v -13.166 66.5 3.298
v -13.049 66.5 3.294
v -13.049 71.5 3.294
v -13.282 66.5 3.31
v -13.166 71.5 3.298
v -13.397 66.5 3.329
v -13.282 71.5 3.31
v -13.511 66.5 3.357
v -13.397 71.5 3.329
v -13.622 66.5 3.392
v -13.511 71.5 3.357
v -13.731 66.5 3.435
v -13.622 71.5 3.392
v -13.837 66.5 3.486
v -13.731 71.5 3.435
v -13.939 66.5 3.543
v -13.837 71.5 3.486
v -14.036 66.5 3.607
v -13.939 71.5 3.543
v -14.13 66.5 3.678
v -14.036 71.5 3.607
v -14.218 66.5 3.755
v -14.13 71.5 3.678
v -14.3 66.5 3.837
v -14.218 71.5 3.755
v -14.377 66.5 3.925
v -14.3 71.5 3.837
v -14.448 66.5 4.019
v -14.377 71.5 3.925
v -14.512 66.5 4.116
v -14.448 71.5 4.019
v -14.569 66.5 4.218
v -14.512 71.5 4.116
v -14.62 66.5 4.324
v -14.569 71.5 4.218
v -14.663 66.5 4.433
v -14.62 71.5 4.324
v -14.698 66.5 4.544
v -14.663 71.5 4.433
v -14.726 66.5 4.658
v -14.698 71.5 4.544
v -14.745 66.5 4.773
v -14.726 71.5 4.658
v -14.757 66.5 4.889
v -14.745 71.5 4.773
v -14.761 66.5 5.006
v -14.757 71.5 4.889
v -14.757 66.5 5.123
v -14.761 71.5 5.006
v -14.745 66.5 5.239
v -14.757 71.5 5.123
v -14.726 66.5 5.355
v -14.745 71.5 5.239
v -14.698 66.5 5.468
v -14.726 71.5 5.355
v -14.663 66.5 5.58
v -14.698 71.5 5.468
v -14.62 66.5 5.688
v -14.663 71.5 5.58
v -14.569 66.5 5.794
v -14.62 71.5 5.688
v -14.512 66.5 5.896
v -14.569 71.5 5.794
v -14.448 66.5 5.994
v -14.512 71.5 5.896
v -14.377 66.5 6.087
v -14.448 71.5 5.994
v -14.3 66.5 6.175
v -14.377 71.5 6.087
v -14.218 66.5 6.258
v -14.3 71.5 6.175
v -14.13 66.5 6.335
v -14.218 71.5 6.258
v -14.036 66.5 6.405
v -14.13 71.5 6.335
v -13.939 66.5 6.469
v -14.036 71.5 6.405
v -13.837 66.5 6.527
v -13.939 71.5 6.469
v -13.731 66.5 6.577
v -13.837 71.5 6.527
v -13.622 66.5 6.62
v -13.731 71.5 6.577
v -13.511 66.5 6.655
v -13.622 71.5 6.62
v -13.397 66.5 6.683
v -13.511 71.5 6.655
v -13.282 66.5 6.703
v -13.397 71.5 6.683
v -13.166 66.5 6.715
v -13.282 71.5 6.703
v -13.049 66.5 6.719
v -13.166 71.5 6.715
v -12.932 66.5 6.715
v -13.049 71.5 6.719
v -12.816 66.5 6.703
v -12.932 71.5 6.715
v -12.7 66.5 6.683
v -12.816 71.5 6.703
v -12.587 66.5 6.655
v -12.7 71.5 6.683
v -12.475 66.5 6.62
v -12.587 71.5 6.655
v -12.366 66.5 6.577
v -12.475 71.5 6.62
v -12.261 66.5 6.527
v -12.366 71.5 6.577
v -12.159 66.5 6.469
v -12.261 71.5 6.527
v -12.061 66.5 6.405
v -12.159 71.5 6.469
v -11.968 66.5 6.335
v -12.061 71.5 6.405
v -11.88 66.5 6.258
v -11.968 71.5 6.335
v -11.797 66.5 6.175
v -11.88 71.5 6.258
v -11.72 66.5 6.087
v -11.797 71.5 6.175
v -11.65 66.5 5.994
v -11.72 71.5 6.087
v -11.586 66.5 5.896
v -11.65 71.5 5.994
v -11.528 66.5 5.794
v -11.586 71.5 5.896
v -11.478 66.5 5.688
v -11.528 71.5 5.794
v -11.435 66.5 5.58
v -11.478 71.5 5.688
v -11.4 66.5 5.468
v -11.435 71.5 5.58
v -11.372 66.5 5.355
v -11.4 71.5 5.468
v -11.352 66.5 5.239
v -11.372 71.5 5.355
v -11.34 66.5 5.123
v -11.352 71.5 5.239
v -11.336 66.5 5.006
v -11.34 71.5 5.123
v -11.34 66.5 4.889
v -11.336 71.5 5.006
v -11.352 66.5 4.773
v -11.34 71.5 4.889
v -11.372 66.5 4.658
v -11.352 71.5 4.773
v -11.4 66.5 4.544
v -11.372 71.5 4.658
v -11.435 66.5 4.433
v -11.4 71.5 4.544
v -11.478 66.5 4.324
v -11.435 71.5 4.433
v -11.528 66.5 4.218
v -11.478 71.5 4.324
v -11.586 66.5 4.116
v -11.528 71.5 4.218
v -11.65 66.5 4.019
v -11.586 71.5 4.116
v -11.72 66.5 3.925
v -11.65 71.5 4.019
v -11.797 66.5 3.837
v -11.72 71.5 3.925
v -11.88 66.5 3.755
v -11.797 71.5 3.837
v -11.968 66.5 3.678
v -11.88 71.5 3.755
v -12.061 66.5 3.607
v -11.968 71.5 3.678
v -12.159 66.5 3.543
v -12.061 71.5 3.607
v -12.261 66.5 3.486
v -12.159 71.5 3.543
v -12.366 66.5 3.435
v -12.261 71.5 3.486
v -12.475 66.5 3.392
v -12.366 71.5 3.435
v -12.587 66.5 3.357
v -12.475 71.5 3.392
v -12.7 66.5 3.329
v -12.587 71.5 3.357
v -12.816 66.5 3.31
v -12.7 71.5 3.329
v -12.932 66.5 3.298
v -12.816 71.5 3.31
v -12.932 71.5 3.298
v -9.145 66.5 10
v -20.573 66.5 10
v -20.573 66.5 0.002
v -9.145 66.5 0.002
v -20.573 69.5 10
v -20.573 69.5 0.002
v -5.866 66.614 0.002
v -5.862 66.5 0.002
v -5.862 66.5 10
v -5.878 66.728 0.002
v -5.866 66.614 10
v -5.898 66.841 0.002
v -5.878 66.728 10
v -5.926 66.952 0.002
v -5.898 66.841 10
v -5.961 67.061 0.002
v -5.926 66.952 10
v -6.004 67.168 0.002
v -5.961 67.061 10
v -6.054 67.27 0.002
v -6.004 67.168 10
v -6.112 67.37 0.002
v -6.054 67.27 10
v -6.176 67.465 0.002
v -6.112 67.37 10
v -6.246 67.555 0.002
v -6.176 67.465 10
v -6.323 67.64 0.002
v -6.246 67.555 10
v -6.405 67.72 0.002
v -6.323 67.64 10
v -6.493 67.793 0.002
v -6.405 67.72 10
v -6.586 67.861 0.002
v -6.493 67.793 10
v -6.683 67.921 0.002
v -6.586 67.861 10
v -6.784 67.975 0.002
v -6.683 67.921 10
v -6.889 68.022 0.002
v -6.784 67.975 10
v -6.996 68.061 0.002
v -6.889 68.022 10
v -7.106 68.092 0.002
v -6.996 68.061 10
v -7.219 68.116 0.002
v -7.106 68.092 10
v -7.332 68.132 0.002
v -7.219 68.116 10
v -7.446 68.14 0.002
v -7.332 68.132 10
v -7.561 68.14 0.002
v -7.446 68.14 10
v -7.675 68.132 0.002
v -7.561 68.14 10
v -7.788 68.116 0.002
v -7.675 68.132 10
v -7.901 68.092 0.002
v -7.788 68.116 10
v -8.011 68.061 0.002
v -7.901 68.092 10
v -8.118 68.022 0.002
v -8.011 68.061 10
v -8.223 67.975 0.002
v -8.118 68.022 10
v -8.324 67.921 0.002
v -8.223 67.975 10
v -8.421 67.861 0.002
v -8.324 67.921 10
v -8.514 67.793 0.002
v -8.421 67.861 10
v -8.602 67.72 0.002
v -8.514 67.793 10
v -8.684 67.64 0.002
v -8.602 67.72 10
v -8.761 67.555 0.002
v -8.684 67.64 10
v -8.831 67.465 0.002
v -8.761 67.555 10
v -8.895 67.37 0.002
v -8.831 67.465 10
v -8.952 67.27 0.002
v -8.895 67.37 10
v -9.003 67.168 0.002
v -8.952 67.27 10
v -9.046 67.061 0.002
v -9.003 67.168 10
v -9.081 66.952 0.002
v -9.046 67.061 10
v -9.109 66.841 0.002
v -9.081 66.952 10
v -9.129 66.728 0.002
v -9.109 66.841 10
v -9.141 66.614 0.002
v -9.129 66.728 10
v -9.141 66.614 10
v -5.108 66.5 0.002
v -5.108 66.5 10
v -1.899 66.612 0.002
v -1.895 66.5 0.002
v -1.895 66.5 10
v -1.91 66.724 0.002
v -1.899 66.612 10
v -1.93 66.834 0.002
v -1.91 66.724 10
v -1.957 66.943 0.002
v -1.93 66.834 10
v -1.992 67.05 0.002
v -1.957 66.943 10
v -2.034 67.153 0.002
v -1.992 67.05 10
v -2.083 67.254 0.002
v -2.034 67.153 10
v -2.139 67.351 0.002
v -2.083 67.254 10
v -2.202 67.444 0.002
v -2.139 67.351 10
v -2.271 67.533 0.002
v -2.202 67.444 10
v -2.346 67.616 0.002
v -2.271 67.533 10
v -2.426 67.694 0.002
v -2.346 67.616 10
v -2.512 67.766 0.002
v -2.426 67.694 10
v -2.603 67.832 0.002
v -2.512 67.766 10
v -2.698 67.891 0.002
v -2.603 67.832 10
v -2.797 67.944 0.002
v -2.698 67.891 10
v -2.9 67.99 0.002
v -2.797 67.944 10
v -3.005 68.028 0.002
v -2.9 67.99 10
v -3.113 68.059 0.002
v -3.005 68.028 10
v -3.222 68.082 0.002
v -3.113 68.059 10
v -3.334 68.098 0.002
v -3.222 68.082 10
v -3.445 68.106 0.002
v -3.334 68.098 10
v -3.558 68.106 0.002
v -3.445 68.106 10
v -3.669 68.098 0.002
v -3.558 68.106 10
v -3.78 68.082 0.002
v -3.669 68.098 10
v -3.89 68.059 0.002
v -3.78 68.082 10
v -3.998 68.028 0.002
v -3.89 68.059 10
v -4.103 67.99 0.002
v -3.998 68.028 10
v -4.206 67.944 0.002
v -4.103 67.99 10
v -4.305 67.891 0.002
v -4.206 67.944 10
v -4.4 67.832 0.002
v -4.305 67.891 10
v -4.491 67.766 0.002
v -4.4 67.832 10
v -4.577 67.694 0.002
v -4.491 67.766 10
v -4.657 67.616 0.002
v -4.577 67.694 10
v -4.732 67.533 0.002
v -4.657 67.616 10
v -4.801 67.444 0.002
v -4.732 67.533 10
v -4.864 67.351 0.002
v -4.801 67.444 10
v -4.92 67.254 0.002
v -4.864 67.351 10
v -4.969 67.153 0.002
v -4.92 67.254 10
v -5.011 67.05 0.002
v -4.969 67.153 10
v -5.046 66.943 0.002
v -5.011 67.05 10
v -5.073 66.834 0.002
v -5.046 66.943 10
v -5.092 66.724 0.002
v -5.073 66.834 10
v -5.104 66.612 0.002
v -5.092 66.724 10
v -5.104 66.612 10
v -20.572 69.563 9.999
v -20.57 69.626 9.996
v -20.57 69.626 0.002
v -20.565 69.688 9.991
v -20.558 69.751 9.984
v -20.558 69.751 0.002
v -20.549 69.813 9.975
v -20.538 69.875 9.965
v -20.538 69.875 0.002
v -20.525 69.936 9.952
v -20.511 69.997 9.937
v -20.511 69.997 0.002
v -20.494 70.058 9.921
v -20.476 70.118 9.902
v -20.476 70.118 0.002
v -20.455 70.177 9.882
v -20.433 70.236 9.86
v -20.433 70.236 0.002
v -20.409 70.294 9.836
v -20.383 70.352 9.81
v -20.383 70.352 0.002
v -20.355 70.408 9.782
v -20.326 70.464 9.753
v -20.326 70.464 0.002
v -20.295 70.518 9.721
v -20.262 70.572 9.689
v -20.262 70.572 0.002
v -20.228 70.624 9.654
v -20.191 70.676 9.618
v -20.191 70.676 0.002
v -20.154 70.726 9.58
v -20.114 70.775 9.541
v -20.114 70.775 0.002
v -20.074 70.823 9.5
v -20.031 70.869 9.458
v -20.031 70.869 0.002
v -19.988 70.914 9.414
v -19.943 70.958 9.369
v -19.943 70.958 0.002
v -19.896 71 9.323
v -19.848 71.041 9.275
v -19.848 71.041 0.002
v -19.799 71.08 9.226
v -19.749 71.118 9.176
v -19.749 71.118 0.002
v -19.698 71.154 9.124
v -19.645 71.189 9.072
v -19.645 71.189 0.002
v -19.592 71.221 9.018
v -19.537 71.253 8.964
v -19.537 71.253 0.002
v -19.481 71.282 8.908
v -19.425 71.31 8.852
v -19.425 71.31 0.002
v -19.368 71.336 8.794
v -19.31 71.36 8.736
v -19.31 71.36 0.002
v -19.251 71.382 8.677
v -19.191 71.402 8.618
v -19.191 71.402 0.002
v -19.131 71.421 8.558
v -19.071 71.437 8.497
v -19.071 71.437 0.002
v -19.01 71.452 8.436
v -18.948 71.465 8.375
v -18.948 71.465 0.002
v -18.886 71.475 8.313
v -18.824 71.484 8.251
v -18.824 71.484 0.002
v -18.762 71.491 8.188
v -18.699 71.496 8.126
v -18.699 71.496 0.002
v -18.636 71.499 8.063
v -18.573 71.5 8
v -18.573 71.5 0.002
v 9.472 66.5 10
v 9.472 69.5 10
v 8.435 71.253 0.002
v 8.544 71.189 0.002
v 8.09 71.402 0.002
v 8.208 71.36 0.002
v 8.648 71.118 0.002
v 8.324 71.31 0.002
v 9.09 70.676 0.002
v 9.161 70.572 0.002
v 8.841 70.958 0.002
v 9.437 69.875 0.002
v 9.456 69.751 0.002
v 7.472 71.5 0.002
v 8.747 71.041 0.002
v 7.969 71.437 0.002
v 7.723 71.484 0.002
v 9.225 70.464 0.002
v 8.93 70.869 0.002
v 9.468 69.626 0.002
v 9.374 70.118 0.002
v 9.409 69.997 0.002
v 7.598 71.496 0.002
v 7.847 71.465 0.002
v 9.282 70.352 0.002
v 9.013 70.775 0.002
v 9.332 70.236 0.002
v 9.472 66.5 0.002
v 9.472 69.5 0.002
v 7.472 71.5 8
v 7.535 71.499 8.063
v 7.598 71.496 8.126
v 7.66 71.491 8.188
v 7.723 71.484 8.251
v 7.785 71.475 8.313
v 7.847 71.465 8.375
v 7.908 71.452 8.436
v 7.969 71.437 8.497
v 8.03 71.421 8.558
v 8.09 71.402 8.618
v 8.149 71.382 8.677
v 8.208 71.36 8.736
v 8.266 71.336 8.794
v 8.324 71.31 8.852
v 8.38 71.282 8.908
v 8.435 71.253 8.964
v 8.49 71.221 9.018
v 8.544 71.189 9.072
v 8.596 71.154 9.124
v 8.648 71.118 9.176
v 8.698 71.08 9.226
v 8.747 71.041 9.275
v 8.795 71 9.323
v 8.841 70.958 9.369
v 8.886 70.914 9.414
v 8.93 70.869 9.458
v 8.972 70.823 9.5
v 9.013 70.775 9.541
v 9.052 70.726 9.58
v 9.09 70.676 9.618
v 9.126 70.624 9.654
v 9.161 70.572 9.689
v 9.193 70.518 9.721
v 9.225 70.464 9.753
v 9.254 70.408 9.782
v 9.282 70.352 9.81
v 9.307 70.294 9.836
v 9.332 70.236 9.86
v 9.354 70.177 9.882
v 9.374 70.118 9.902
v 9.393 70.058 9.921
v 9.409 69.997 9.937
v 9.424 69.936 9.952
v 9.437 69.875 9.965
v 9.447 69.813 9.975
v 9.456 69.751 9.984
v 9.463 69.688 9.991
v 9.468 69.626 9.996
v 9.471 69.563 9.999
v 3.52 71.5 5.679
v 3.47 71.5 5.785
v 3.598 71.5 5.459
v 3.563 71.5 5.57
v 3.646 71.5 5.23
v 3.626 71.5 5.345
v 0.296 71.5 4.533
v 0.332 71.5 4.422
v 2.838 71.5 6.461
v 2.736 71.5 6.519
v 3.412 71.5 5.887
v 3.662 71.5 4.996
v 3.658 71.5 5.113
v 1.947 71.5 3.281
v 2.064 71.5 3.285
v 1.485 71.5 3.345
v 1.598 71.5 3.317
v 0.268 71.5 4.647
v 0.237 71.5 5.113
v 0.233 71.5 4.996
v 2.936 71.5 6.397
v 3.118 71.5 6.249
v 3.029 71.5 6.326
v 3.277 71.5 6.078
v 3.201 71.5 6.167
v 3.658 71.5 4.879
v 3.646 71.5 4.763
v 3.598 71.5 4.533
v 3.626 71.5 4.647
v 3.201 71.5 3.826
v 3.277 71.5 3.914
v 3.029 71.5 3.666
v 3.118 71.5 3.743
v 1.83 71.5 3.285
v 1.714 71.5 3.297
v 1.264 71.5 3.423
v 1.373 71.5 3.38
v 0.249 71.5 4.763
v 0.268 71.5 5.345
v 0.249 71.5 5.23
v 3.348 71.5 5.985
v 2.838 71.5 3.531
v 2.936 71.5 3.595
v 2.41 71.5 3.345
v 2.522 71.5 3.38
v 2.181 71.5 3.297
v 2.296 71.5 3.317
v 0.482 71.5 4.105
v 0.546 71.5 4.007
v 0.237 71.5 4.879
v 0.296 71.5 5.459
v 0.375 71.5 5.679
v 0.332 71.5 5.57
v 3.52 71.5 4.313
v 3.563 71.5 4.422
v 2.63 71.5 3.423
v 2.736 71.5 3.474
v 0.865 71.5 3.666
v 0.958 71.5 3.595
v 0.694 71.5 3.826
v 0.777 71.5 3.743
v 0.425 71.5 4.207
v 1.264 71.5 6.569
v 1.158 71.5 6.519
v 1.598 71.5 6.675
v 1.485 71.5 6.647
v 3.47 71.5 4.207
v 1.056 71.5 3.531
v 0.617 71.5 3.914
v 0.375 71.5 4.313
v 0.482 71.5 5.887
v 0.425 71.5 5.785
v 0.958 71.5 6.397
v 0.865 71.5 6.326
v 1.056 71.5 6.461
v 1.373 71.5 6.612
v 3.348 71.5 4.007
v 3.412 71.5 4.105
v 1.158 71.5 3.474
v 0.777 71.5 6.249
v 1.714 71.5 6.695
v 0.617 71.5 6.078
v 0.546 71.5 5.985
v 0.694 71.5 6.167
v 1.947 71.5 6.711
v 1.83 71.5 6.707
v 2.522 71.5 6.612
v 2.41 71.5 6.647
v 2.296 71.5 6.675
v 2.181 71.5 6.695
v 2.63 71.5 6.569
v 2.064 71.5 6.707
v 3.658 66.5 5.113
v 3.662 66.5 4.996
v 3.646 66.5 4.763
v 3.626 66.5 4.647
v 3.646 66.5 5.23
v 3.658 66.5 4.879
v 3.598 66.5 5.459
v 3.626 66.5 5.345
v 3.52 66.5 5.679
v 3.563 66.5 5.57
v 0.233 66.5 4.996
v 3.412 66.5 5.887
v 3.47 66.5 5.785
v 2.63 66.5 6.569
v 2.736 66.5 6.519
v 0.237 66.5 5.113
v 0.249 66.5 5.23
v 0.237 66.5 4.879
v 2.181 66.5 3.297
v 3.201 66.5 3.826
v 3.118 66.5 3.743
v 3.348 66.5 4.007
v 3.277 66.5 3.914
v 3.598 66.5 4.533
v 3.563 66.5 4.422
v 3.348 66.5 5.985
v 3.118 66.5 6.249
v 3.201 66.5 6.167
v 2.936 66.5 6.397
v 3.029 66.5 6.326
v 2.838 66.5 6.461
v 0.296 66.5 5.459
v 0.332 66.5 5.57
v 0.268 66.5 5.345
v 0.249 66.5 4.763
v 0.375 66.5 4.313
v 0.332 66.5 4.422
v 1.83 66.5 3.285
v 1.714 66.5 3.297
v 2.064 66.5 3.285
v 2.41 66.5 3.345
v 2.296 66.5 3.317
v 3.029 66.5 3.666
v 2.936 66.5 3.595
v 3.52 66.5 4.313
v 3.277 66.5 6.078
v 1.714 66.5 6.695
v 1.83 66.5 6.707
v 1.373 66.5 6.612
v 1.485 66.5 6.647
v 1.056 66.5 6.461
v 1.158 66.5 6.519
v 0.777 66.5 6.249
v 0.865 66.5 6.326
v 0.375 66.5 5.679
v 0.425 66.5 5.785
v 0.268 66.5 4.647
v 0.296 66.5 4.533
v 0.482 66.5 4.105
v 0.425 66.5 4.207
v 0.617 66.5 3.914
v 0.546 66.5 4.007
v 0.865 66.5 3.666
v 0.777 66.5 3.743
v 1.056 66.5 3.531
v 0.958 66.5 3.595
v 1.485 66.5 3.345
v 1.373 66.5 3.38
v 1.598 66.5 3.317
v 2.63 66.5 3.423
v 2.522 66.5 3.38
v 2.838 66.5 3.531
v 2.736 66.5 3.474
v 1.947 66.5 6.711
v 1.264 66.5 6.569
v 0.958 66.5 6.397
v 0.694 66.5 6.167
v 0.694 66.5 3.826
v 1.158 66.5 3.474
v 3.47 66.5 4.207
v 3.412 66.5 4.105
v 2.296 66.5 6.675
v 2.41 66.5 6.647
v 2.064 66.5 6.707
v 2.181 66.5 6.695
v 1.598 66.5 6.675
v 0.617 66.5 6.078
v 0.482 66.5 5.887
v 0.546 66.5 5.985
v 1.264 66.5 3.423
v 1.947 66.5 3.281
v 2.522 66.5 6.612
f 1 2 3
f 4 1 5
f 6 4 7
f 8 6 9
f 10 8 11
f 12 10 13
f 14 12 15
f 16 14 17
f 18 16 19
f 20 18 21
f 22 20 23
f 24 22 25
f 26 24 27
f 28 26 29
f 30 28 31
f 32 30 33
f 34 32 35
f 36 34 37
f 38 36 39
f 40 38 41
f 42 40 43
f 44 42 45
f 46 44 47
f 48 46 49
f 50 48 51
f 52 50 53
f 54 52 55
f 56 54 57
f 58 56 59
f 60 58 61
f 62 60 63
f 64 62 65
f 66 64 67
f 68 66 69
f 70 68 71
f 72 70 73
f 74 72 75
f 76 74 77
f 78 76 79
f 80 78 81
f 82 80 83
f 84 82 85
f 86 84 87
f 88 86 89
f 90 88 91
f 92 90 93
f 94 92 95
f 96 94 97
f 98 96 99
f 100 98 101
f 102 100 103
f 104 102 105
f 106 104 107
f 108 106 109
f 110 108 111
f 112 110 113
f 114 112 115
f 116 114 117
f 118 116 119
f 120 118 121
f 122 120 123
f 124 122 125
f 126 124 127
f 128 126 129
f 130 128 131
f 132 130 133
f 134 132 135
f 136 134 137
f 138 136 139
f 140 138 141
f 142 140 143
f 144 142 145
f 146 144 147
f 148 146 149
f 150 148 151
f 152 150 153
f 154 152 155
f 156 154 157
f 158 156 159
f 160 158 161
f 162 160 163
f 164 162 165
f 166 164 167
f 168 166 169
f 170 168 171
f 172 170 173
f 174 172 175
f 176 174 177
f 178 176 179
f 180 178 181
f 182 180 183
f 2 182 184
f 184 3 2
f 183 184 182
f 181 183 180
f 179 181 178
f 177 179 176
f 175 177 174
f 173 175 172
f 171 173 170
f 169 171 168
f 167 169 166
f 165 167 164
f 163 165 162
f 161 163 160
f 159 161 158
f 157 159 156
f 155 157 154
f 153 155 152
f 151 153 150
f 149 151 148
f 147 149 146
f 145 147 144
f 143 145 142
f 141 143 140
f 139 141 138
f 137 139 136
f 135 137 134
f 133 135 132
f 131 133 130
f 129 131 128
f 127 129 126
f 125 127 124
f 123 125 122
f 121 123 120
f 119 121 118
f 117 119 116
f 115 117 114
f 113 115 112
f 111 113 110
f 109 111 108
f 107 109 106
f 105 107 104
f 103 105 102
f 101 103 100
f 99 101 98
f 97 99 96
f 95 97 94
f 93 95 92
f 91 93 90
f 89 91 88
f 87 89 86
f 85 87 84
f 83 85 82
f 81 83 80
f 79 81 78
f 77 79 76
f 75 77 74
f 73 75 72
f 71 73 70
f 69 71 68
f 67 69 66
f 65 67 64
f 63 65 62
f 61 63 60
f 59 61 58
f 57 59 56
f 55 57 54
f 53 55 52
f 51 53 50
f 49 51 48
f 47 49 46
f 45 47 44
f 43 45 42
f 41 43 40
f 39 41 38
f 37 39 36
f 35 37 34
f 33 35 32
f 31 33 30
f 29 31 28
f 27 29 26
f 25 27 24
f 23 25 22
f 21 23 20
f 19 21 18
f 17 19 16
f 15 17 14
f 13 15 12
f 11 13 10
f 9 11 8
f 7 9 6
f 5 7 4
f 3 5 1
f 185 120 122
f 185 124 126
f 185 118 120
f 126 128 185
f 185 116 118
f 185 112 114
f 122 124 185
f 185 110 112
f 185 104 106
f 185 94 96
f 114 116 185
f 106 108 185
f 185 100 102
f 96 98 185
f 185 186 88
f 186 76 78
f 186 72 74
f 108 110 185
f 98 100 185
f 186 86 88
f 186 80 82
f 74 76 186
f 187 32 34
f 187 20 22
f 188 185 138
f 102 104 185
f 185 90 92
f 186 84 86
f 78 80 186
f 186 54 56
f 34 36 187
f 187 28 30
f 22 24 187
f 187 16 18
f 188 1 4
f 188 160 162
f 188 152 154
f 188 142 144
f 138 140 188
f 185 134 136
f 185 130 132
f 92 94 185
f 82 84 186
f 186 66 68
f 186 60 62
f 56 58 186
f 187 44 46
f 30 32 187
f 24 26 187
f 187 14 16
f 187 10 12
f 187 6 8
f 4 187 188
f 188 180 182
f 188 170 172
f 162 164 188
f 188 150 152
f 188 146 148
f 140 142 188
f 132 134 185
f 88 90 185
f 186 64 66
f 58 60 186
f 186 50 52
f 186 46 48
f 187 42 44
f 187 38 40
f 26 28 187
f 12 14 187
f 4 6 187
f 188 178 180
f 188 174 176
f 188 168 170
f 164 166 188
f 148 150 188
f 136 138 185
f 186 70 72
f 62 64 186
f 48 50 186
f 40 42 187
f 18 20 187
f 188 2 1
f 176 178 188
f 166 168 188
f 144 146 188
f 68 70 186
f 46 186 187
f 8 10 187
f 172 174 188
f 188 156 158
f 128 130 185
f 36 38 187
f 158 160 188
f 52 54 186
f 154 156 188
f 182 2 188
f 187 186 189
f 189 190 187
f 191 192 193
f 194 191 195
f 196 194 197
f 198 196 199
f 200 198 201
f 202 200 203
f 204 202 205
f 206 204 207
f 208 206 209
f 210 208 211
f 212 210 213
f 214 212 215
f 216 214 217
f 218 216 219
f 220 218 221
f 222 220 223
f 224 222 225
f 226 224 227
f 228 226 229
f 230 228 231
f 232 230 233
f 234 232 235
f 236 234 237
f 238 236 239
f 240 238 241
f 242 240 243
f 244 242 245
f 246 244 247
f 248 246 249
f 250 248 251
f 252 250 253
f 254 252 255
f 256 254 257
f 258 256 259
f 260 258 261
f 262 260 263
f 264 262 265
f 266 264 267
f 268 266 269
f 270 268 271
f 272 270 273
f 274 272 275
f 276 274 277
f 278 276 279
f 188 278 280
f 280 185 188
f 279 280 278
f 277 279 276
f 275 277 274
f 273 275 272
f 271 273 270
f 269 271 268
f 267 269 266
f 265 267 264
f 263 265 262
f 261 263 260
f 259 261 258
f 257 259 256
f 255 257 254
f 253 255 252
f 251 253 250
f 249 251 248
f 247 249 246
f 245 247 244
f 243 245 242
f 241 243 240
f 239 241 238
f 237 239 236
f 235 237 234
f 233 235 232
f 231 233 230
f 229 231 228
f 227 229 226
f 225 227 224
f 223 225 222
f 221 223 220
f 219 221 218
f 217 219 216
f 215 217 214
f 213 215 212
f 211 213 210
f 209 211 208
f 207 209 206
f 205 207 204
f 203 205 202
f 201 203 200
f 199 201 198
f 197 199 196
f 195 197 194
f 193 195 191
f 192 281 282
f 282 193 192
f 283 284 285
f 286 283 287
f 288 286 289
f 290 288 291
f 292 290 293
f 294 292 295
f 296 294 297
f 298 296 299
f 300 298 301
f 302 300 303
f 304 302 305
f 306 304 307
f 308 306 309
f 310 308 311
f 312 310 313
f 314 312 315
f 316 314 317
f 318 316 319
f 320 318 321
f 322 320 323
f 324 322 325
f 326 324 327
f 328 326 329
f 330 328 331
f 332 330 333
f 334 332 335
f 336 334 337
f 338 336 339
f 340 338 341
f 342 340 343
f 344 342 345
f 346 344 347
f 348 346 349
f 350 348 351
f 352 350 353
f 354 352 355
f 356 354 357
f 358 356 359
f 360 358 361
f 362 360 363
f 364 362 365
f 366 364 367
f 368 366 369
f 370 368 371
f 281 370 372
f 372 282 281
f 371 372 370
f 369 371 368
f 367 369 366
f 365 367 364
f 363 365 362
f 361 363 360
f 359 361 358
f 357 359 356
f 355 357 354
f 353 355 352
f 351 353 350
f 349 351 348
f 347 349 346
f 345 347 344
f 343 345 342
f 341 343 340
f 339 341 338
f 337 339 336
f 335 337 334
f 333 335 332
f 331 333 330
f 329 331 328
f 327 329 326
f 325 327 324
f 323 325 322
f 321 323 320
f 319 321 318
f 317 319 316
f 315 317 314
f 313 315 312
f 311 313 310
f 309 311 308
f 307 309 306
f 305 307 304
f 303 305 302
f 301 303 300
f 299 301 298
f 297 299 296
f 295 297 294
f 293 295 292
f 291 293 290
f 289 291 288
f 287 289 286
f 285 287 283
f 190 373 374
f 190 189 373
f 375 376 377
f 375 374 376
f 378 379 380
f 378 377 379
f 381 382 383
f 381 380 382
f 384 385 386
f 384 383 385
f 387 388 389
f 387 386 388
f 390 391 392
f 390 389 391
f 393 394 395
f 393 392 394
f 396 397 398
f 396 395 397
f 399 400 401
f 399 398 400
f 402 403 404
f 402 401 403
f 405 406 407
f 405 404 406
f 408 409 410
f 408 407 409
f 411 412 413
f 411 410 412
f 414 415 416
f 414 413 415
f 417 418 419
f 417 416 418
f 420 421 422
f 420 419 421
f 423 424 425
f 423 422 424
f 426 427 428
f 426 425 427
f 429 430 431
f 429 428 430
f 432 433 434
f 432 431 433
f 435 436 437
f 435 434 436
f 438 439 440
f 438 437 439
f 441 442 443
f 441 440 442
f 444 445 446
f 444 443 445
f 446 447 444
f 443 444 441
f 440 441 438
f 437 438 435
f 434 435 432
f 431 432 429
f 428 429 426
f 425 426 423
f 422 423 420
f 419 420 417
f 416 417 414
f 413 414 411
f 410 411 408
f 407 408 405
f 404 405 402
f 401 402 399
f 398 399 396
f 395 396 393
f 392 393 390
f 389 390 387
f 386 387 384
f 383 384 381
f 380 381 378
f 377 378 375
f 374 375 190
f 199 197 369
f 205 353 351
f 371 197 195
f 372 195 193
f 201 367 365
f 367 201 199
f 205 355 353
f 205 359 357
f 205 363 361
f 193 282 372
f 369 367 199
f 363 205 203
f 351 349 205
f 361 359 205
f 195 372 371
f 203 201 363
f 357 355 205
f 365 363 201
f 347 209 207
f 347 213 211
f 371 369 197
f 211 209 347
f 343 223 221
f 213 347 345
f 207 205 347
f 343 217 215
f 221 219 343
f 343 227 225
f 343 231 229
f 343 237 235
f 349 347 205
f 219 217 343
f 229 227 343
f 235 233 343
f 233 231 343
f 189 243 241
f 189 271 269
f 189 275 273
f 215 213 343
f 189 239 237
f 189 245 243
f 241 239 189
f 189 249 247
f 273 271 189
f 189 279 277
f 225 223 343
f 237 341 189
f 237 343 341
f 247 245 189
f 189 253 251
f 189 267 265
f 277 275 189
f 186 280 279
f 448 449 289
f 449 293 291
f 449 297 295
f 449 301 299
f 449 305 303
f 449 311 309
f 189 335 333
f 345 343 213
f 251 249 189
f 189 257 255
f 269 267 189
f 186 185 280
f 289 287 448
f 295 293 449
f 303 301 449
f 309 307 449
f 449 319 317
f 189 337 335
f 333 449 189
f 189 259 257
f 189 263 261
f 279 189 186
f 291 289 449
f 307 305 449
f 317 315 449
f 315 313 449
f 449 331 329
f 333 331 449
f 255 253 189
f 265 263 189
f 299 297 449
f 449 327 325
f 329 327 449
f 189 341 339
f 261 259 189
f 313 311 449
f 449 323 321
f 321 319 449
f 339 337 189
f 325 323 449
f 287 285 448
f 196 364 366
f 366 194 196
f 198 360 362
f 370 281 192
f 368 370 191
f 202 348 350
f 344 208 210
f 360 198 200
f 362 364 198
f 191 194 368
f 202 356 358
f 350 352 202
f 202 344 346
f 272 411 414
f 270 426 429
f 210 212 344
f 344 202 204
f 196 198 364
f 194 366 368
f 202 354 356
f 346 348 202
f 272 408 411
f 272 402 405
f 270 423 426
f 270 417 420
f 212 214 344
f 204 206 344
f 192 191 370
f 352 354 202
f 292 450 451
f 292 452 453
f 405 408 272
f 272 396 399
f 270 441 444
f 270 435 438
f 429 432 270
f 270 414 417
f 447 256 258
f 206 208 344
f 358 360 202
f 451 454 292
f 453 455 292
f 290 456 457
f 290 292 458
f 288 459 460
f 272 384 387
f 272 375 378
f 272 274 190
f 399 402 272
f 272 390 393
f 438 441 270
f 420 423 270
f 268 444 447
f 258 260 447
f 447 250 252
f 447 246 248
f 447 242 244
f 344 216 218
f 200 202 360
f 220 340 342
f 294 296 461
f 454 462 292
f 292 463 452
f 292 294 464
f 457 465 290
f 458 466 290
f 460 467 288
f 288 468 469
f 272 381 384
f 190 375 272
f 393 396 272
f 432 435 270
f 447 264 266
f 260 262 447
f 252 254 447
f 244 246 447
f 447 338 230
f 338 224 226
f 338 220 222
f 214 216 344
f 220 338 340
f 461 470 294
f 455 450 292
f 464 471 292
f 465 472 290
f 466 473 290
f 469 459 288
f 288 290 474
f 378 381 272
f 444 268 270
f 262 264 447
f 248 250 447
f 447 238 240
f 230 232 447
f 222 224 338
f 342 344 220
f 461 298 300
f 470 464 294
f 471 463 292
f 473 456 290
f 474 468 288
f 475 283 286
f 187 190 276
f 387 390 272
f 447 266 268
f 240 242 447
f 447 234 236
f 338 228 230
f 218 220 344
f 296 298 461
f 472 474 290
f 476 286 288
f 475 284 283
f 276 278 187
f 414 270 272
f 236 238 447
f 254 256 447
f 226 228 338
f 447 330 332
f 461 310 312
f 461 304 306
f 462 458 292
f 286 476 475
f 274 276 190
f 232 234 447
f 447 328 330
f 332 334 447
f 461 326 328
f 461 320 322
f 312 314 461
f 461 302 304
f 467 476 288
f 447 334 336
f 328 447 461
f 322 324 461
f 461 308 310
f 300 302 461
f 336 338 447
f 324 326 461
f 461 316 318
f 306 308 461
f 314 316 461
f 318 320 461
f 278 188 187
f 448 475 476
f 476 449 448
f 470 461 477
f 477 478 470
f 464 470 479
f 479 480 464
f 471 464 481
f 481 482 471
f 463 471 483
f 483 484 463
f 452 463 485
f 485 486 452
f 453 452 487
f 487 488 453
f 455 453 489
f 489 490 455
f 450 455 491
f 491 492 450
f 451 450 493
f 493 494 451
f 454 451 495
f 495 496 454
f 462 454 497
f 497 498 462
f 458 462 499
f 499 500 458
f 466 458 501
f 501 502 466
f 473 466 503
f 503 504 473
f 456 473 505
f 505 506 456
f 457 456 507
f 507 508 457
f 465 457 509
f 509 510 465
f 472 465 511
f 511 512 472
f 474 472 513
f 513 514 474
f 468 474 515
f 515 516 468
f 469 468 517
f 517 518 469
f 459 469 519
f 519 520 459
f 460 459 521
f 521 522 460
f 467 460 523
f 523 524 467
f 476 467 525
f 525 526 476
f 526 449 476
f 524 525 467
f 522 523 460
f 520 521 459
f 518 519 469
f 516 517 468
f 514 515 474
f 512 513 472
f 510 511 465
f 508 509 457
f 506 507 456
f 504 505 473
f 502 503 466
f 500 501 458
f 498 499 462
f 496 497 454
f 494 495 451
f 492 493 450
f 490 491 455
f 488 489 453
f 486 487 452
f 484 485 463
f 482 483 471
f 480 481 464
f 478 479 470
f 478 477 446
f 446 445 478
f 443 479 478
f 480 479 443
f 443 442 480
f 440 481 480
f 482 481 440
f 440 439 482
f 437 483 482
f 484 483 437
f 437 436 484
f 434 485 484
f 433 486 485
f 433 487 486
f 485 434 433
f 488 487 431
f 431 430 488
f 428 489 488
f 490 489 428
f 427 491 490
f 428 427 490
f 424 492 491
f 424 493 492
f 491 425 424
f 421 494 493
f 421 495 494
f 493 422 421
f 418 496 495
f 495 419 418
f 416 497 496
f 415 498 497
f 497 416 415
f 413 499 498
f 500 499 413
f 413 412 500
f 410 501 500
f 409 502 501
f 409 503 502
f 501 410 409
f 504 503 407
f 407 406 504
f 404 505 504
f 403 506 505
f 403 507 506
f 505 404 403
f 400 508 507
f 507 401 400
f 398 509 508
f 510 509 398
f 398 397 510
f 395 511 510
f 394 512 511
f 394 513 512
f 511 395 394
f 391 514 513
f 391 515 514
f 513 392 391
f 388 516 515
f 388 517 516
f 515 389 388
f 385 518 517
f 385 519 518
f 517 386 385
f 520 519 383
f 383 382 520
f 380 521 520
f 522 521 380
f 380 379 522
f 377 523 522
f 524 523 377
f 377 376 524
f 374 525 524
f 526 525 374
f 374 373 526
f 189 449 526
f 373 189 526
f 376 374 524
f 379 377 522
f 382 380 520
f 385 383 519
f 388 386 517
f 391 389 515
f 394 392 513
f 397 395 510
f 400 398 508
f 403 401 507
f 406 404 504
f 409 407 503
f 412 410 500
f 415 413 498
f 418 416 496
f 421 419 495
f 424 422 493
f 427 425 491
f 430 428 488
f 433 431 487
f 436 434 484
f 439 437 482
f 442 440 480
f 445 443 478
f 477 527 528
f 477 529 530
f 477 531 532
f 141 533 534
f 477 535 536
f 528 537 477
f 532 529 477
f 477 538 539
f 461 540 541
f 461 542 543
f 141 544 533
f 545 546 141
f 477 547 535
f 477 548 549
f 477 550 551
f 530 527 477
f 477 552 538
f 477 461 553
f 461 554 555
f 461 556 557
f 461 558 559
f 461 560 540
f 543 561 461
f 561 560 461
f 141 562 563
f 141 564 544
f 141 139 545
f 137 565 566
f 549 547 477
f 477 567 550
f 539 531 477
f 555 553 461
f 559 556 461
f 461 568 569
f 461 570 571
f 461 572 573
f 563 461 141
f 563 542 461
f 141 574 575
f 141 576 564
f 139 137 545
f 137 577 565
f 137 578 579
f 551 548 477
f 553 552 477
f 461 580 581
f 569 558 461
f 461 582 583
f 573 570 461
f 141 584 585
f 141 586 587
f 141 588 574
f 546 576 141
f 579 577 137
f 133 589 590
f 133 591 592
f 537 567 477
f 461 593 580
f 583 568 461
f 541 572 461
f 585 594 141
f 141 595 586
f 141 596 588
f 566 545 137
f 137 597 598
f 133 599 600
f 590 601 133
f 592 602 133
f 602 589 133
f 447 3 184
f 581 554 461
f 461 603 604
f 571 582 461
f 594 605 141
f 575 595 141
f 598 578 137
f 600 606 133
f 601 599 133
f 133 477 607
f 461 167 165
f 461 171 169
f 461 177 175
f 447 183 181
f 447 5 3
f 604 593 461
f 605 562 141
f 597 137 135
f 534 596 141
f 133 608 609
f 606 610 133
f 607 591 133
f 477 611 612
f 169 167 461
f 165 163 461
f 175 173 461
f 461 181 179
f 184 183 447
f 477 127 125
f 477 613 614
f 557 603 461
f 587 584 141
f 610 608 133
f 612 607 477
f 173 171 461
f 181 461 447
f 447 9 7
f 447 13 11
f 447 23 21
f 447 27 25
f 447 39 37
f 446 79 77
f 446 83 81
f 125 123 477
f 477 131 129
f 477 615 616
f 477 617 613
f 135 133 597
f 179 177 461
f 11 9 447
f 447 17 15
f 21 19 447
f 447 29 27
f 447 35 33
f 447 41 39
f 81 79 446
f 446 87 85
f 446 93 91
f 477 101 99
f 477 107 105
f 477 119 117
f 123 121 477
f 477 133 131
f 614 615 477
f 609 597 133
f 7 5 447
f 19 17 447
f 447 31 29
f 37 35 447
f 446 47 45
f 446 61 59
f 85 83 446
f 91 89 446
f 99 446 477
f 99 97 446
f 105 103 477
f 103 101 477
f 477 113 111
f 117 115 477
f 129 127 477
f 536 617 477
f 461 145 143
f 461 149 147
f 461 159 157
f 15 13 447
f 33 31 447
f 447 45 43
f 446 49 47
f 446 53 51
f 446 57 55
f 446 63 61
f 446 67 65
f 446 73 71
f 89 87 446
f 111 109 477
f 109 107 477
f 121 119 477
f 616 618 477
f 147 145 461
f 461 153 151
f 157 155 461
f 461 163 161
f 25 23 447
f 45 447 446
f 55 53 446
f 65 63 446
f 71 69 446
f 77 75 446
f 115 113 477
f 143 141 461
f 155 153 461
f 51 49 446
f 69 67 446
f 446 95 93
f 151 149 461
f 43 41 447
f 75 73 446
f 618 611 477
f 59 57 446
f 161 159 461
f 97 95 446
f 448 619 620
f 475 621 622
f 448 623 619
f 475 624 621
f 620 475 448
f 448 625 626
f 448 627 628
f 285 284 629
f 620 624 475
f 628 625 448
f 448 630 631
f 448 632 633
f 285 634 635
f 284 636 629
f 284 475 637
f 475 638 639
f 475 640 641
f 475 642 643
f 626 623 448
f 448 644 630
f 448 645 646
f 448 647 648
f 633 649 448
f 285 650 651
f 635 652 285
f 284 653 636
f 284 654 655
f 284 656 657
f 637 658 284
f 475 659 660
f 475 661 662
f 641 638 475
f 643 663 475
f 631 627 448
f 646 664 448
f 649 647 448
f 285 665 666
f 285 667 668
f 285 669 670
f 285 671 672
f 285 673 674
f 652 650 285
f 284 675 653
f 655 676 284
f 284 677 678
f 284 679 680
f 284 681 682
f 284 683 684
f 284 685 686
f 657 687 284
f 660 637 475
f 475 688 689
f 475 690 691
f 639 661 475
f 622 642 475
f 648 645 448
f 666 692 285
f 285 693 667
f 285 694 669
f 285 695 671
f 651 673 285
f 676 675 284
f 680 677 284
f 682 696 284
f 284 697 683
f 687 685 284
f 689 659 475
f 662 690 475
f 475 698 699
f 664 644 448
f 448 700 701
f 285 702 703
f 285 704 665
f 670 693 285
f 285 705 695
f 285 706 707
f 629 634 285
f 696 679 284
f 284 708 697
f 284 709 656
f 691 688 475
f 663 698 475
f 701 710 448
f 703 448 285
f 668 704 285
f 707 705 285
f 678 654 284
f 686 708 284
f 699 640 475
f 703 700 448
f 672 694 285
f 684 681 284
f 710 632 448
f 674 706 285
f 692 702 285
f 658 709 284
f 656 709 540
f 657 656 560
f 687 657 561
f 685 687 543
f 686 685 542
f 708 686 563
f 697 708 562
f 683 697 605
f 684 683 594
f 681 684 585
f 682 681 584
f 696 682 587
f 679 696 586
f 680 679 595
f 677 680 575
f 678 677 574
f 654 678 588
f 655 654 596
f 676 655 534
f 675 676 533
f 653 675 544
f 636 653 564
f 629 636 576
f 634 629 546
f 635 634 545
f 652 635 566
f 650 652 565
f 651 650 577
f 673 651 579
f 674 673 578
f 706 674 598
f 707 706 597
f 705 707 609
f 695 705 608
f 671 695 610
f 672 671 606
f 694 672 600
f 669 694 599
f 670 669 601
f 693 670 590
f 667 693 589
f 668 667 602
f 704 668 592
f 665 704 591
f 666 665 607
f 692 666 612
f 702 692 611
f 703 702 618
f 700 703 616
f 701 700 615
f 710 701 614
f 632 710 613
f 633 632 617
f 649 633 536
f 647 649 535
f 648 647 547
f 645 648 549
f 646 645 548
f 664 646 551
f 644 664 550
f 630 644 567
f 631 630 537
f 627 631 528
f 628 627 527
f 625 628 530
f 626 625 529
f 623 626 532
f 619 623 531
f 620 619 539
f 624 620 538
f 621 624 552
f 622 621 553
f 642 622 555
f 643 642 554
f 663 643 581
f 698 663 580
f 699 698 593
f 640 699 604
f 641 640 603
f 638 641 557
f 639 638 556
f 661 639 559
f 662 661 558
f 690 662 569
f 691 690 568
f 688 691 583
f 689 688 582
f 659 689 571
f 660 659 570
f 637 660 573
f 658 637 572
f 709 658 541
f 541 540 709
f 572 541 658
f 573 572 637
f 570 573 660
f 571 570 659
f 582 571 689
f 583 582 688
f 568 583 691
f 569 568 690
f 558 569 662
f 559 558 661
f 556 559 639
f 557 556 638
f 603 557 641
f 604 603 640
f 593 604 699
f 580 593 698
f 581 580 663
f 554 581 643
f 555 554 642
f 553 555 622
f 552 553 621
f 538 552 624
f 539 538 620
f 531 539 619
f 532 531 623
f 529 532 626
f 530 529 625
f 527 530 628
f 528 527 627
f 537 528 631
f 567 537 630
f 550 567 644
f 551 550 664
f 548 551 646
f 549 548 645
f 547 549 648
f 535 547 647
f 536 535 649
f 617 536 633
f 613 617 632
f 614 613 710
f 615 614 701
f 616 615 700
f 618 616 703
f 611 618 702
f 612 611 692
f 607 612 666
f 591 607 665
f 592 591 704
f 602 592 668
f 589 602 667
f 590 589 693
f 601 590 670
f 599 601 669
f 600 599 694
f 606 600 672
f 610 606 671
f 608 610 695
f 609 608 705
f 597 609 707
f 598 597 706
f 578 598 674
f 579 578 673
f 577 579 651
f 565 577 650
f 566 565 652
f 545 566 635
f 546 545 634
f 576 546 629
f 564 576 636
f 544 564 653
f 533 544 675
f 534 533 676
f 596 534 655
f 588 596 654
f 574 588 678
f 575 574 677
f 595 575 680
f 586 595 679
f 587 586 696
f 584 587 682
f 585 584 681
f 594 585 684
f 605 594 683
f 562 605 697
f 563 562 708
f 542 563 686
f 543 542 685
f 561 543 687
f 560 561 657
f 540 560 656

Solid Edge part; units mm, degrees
sketch "Sketch1" plane through (0, 66.5, 0) normal (0, 1, 0) x (-1, 0, 0)
  circle A0 centre (13.0488, 5.0062) radius 1.7126
  line L0 (20.5735, 0.0023) -> (20.5735, 10)
  line L1 (20.5735, 10) -> (-9.472, 10)
  line L2 (-9.472, 10) -> (-9.472, 0.0023)
  line L3 (-9.472, 0.0023) -> (20.5735, 0.0023)
  circle A1 centre (-1.9473, 4.9961) radius 1.7148
  dimension "D1" = 3.4295
  dimension "D2" = 3.4252
  dimension "D3" = 14.9961
  dimension "D4" = 30.0454
  dimension "D5" = 9.9977
extrude "Protrusion1" add sketch "Sketch1" along normal blind 5
sketch "Sketch2" plane through (-5.5507, 69, 0.0023) normal (0, 0, -1) x (1, 0, 0)
  arc A0 (3.6559, 2.5) -> (0.4426, 2.5) centre (2.0493, 2.5) cw
  line L0 (3.6559, 2.5) -> (0.4426, 2.5)
  arc A1 (-0.3116, 2.5) -> (-3.5939, 2.5) centre (-1.9527, 2.5) cw
  line L1 (-0.3116, 2.5) -> (-3.5939, 2.5)
extrude "ExtrudedCutout_1" cut sketch "Sketch2" against normal blind 32
fillet "Round_1" radius 2 3 edges at (9.472, 71.5, 5.0011) (-20.5735, 71.5, 5.0011) (-5.5507, 71.5, 10)
